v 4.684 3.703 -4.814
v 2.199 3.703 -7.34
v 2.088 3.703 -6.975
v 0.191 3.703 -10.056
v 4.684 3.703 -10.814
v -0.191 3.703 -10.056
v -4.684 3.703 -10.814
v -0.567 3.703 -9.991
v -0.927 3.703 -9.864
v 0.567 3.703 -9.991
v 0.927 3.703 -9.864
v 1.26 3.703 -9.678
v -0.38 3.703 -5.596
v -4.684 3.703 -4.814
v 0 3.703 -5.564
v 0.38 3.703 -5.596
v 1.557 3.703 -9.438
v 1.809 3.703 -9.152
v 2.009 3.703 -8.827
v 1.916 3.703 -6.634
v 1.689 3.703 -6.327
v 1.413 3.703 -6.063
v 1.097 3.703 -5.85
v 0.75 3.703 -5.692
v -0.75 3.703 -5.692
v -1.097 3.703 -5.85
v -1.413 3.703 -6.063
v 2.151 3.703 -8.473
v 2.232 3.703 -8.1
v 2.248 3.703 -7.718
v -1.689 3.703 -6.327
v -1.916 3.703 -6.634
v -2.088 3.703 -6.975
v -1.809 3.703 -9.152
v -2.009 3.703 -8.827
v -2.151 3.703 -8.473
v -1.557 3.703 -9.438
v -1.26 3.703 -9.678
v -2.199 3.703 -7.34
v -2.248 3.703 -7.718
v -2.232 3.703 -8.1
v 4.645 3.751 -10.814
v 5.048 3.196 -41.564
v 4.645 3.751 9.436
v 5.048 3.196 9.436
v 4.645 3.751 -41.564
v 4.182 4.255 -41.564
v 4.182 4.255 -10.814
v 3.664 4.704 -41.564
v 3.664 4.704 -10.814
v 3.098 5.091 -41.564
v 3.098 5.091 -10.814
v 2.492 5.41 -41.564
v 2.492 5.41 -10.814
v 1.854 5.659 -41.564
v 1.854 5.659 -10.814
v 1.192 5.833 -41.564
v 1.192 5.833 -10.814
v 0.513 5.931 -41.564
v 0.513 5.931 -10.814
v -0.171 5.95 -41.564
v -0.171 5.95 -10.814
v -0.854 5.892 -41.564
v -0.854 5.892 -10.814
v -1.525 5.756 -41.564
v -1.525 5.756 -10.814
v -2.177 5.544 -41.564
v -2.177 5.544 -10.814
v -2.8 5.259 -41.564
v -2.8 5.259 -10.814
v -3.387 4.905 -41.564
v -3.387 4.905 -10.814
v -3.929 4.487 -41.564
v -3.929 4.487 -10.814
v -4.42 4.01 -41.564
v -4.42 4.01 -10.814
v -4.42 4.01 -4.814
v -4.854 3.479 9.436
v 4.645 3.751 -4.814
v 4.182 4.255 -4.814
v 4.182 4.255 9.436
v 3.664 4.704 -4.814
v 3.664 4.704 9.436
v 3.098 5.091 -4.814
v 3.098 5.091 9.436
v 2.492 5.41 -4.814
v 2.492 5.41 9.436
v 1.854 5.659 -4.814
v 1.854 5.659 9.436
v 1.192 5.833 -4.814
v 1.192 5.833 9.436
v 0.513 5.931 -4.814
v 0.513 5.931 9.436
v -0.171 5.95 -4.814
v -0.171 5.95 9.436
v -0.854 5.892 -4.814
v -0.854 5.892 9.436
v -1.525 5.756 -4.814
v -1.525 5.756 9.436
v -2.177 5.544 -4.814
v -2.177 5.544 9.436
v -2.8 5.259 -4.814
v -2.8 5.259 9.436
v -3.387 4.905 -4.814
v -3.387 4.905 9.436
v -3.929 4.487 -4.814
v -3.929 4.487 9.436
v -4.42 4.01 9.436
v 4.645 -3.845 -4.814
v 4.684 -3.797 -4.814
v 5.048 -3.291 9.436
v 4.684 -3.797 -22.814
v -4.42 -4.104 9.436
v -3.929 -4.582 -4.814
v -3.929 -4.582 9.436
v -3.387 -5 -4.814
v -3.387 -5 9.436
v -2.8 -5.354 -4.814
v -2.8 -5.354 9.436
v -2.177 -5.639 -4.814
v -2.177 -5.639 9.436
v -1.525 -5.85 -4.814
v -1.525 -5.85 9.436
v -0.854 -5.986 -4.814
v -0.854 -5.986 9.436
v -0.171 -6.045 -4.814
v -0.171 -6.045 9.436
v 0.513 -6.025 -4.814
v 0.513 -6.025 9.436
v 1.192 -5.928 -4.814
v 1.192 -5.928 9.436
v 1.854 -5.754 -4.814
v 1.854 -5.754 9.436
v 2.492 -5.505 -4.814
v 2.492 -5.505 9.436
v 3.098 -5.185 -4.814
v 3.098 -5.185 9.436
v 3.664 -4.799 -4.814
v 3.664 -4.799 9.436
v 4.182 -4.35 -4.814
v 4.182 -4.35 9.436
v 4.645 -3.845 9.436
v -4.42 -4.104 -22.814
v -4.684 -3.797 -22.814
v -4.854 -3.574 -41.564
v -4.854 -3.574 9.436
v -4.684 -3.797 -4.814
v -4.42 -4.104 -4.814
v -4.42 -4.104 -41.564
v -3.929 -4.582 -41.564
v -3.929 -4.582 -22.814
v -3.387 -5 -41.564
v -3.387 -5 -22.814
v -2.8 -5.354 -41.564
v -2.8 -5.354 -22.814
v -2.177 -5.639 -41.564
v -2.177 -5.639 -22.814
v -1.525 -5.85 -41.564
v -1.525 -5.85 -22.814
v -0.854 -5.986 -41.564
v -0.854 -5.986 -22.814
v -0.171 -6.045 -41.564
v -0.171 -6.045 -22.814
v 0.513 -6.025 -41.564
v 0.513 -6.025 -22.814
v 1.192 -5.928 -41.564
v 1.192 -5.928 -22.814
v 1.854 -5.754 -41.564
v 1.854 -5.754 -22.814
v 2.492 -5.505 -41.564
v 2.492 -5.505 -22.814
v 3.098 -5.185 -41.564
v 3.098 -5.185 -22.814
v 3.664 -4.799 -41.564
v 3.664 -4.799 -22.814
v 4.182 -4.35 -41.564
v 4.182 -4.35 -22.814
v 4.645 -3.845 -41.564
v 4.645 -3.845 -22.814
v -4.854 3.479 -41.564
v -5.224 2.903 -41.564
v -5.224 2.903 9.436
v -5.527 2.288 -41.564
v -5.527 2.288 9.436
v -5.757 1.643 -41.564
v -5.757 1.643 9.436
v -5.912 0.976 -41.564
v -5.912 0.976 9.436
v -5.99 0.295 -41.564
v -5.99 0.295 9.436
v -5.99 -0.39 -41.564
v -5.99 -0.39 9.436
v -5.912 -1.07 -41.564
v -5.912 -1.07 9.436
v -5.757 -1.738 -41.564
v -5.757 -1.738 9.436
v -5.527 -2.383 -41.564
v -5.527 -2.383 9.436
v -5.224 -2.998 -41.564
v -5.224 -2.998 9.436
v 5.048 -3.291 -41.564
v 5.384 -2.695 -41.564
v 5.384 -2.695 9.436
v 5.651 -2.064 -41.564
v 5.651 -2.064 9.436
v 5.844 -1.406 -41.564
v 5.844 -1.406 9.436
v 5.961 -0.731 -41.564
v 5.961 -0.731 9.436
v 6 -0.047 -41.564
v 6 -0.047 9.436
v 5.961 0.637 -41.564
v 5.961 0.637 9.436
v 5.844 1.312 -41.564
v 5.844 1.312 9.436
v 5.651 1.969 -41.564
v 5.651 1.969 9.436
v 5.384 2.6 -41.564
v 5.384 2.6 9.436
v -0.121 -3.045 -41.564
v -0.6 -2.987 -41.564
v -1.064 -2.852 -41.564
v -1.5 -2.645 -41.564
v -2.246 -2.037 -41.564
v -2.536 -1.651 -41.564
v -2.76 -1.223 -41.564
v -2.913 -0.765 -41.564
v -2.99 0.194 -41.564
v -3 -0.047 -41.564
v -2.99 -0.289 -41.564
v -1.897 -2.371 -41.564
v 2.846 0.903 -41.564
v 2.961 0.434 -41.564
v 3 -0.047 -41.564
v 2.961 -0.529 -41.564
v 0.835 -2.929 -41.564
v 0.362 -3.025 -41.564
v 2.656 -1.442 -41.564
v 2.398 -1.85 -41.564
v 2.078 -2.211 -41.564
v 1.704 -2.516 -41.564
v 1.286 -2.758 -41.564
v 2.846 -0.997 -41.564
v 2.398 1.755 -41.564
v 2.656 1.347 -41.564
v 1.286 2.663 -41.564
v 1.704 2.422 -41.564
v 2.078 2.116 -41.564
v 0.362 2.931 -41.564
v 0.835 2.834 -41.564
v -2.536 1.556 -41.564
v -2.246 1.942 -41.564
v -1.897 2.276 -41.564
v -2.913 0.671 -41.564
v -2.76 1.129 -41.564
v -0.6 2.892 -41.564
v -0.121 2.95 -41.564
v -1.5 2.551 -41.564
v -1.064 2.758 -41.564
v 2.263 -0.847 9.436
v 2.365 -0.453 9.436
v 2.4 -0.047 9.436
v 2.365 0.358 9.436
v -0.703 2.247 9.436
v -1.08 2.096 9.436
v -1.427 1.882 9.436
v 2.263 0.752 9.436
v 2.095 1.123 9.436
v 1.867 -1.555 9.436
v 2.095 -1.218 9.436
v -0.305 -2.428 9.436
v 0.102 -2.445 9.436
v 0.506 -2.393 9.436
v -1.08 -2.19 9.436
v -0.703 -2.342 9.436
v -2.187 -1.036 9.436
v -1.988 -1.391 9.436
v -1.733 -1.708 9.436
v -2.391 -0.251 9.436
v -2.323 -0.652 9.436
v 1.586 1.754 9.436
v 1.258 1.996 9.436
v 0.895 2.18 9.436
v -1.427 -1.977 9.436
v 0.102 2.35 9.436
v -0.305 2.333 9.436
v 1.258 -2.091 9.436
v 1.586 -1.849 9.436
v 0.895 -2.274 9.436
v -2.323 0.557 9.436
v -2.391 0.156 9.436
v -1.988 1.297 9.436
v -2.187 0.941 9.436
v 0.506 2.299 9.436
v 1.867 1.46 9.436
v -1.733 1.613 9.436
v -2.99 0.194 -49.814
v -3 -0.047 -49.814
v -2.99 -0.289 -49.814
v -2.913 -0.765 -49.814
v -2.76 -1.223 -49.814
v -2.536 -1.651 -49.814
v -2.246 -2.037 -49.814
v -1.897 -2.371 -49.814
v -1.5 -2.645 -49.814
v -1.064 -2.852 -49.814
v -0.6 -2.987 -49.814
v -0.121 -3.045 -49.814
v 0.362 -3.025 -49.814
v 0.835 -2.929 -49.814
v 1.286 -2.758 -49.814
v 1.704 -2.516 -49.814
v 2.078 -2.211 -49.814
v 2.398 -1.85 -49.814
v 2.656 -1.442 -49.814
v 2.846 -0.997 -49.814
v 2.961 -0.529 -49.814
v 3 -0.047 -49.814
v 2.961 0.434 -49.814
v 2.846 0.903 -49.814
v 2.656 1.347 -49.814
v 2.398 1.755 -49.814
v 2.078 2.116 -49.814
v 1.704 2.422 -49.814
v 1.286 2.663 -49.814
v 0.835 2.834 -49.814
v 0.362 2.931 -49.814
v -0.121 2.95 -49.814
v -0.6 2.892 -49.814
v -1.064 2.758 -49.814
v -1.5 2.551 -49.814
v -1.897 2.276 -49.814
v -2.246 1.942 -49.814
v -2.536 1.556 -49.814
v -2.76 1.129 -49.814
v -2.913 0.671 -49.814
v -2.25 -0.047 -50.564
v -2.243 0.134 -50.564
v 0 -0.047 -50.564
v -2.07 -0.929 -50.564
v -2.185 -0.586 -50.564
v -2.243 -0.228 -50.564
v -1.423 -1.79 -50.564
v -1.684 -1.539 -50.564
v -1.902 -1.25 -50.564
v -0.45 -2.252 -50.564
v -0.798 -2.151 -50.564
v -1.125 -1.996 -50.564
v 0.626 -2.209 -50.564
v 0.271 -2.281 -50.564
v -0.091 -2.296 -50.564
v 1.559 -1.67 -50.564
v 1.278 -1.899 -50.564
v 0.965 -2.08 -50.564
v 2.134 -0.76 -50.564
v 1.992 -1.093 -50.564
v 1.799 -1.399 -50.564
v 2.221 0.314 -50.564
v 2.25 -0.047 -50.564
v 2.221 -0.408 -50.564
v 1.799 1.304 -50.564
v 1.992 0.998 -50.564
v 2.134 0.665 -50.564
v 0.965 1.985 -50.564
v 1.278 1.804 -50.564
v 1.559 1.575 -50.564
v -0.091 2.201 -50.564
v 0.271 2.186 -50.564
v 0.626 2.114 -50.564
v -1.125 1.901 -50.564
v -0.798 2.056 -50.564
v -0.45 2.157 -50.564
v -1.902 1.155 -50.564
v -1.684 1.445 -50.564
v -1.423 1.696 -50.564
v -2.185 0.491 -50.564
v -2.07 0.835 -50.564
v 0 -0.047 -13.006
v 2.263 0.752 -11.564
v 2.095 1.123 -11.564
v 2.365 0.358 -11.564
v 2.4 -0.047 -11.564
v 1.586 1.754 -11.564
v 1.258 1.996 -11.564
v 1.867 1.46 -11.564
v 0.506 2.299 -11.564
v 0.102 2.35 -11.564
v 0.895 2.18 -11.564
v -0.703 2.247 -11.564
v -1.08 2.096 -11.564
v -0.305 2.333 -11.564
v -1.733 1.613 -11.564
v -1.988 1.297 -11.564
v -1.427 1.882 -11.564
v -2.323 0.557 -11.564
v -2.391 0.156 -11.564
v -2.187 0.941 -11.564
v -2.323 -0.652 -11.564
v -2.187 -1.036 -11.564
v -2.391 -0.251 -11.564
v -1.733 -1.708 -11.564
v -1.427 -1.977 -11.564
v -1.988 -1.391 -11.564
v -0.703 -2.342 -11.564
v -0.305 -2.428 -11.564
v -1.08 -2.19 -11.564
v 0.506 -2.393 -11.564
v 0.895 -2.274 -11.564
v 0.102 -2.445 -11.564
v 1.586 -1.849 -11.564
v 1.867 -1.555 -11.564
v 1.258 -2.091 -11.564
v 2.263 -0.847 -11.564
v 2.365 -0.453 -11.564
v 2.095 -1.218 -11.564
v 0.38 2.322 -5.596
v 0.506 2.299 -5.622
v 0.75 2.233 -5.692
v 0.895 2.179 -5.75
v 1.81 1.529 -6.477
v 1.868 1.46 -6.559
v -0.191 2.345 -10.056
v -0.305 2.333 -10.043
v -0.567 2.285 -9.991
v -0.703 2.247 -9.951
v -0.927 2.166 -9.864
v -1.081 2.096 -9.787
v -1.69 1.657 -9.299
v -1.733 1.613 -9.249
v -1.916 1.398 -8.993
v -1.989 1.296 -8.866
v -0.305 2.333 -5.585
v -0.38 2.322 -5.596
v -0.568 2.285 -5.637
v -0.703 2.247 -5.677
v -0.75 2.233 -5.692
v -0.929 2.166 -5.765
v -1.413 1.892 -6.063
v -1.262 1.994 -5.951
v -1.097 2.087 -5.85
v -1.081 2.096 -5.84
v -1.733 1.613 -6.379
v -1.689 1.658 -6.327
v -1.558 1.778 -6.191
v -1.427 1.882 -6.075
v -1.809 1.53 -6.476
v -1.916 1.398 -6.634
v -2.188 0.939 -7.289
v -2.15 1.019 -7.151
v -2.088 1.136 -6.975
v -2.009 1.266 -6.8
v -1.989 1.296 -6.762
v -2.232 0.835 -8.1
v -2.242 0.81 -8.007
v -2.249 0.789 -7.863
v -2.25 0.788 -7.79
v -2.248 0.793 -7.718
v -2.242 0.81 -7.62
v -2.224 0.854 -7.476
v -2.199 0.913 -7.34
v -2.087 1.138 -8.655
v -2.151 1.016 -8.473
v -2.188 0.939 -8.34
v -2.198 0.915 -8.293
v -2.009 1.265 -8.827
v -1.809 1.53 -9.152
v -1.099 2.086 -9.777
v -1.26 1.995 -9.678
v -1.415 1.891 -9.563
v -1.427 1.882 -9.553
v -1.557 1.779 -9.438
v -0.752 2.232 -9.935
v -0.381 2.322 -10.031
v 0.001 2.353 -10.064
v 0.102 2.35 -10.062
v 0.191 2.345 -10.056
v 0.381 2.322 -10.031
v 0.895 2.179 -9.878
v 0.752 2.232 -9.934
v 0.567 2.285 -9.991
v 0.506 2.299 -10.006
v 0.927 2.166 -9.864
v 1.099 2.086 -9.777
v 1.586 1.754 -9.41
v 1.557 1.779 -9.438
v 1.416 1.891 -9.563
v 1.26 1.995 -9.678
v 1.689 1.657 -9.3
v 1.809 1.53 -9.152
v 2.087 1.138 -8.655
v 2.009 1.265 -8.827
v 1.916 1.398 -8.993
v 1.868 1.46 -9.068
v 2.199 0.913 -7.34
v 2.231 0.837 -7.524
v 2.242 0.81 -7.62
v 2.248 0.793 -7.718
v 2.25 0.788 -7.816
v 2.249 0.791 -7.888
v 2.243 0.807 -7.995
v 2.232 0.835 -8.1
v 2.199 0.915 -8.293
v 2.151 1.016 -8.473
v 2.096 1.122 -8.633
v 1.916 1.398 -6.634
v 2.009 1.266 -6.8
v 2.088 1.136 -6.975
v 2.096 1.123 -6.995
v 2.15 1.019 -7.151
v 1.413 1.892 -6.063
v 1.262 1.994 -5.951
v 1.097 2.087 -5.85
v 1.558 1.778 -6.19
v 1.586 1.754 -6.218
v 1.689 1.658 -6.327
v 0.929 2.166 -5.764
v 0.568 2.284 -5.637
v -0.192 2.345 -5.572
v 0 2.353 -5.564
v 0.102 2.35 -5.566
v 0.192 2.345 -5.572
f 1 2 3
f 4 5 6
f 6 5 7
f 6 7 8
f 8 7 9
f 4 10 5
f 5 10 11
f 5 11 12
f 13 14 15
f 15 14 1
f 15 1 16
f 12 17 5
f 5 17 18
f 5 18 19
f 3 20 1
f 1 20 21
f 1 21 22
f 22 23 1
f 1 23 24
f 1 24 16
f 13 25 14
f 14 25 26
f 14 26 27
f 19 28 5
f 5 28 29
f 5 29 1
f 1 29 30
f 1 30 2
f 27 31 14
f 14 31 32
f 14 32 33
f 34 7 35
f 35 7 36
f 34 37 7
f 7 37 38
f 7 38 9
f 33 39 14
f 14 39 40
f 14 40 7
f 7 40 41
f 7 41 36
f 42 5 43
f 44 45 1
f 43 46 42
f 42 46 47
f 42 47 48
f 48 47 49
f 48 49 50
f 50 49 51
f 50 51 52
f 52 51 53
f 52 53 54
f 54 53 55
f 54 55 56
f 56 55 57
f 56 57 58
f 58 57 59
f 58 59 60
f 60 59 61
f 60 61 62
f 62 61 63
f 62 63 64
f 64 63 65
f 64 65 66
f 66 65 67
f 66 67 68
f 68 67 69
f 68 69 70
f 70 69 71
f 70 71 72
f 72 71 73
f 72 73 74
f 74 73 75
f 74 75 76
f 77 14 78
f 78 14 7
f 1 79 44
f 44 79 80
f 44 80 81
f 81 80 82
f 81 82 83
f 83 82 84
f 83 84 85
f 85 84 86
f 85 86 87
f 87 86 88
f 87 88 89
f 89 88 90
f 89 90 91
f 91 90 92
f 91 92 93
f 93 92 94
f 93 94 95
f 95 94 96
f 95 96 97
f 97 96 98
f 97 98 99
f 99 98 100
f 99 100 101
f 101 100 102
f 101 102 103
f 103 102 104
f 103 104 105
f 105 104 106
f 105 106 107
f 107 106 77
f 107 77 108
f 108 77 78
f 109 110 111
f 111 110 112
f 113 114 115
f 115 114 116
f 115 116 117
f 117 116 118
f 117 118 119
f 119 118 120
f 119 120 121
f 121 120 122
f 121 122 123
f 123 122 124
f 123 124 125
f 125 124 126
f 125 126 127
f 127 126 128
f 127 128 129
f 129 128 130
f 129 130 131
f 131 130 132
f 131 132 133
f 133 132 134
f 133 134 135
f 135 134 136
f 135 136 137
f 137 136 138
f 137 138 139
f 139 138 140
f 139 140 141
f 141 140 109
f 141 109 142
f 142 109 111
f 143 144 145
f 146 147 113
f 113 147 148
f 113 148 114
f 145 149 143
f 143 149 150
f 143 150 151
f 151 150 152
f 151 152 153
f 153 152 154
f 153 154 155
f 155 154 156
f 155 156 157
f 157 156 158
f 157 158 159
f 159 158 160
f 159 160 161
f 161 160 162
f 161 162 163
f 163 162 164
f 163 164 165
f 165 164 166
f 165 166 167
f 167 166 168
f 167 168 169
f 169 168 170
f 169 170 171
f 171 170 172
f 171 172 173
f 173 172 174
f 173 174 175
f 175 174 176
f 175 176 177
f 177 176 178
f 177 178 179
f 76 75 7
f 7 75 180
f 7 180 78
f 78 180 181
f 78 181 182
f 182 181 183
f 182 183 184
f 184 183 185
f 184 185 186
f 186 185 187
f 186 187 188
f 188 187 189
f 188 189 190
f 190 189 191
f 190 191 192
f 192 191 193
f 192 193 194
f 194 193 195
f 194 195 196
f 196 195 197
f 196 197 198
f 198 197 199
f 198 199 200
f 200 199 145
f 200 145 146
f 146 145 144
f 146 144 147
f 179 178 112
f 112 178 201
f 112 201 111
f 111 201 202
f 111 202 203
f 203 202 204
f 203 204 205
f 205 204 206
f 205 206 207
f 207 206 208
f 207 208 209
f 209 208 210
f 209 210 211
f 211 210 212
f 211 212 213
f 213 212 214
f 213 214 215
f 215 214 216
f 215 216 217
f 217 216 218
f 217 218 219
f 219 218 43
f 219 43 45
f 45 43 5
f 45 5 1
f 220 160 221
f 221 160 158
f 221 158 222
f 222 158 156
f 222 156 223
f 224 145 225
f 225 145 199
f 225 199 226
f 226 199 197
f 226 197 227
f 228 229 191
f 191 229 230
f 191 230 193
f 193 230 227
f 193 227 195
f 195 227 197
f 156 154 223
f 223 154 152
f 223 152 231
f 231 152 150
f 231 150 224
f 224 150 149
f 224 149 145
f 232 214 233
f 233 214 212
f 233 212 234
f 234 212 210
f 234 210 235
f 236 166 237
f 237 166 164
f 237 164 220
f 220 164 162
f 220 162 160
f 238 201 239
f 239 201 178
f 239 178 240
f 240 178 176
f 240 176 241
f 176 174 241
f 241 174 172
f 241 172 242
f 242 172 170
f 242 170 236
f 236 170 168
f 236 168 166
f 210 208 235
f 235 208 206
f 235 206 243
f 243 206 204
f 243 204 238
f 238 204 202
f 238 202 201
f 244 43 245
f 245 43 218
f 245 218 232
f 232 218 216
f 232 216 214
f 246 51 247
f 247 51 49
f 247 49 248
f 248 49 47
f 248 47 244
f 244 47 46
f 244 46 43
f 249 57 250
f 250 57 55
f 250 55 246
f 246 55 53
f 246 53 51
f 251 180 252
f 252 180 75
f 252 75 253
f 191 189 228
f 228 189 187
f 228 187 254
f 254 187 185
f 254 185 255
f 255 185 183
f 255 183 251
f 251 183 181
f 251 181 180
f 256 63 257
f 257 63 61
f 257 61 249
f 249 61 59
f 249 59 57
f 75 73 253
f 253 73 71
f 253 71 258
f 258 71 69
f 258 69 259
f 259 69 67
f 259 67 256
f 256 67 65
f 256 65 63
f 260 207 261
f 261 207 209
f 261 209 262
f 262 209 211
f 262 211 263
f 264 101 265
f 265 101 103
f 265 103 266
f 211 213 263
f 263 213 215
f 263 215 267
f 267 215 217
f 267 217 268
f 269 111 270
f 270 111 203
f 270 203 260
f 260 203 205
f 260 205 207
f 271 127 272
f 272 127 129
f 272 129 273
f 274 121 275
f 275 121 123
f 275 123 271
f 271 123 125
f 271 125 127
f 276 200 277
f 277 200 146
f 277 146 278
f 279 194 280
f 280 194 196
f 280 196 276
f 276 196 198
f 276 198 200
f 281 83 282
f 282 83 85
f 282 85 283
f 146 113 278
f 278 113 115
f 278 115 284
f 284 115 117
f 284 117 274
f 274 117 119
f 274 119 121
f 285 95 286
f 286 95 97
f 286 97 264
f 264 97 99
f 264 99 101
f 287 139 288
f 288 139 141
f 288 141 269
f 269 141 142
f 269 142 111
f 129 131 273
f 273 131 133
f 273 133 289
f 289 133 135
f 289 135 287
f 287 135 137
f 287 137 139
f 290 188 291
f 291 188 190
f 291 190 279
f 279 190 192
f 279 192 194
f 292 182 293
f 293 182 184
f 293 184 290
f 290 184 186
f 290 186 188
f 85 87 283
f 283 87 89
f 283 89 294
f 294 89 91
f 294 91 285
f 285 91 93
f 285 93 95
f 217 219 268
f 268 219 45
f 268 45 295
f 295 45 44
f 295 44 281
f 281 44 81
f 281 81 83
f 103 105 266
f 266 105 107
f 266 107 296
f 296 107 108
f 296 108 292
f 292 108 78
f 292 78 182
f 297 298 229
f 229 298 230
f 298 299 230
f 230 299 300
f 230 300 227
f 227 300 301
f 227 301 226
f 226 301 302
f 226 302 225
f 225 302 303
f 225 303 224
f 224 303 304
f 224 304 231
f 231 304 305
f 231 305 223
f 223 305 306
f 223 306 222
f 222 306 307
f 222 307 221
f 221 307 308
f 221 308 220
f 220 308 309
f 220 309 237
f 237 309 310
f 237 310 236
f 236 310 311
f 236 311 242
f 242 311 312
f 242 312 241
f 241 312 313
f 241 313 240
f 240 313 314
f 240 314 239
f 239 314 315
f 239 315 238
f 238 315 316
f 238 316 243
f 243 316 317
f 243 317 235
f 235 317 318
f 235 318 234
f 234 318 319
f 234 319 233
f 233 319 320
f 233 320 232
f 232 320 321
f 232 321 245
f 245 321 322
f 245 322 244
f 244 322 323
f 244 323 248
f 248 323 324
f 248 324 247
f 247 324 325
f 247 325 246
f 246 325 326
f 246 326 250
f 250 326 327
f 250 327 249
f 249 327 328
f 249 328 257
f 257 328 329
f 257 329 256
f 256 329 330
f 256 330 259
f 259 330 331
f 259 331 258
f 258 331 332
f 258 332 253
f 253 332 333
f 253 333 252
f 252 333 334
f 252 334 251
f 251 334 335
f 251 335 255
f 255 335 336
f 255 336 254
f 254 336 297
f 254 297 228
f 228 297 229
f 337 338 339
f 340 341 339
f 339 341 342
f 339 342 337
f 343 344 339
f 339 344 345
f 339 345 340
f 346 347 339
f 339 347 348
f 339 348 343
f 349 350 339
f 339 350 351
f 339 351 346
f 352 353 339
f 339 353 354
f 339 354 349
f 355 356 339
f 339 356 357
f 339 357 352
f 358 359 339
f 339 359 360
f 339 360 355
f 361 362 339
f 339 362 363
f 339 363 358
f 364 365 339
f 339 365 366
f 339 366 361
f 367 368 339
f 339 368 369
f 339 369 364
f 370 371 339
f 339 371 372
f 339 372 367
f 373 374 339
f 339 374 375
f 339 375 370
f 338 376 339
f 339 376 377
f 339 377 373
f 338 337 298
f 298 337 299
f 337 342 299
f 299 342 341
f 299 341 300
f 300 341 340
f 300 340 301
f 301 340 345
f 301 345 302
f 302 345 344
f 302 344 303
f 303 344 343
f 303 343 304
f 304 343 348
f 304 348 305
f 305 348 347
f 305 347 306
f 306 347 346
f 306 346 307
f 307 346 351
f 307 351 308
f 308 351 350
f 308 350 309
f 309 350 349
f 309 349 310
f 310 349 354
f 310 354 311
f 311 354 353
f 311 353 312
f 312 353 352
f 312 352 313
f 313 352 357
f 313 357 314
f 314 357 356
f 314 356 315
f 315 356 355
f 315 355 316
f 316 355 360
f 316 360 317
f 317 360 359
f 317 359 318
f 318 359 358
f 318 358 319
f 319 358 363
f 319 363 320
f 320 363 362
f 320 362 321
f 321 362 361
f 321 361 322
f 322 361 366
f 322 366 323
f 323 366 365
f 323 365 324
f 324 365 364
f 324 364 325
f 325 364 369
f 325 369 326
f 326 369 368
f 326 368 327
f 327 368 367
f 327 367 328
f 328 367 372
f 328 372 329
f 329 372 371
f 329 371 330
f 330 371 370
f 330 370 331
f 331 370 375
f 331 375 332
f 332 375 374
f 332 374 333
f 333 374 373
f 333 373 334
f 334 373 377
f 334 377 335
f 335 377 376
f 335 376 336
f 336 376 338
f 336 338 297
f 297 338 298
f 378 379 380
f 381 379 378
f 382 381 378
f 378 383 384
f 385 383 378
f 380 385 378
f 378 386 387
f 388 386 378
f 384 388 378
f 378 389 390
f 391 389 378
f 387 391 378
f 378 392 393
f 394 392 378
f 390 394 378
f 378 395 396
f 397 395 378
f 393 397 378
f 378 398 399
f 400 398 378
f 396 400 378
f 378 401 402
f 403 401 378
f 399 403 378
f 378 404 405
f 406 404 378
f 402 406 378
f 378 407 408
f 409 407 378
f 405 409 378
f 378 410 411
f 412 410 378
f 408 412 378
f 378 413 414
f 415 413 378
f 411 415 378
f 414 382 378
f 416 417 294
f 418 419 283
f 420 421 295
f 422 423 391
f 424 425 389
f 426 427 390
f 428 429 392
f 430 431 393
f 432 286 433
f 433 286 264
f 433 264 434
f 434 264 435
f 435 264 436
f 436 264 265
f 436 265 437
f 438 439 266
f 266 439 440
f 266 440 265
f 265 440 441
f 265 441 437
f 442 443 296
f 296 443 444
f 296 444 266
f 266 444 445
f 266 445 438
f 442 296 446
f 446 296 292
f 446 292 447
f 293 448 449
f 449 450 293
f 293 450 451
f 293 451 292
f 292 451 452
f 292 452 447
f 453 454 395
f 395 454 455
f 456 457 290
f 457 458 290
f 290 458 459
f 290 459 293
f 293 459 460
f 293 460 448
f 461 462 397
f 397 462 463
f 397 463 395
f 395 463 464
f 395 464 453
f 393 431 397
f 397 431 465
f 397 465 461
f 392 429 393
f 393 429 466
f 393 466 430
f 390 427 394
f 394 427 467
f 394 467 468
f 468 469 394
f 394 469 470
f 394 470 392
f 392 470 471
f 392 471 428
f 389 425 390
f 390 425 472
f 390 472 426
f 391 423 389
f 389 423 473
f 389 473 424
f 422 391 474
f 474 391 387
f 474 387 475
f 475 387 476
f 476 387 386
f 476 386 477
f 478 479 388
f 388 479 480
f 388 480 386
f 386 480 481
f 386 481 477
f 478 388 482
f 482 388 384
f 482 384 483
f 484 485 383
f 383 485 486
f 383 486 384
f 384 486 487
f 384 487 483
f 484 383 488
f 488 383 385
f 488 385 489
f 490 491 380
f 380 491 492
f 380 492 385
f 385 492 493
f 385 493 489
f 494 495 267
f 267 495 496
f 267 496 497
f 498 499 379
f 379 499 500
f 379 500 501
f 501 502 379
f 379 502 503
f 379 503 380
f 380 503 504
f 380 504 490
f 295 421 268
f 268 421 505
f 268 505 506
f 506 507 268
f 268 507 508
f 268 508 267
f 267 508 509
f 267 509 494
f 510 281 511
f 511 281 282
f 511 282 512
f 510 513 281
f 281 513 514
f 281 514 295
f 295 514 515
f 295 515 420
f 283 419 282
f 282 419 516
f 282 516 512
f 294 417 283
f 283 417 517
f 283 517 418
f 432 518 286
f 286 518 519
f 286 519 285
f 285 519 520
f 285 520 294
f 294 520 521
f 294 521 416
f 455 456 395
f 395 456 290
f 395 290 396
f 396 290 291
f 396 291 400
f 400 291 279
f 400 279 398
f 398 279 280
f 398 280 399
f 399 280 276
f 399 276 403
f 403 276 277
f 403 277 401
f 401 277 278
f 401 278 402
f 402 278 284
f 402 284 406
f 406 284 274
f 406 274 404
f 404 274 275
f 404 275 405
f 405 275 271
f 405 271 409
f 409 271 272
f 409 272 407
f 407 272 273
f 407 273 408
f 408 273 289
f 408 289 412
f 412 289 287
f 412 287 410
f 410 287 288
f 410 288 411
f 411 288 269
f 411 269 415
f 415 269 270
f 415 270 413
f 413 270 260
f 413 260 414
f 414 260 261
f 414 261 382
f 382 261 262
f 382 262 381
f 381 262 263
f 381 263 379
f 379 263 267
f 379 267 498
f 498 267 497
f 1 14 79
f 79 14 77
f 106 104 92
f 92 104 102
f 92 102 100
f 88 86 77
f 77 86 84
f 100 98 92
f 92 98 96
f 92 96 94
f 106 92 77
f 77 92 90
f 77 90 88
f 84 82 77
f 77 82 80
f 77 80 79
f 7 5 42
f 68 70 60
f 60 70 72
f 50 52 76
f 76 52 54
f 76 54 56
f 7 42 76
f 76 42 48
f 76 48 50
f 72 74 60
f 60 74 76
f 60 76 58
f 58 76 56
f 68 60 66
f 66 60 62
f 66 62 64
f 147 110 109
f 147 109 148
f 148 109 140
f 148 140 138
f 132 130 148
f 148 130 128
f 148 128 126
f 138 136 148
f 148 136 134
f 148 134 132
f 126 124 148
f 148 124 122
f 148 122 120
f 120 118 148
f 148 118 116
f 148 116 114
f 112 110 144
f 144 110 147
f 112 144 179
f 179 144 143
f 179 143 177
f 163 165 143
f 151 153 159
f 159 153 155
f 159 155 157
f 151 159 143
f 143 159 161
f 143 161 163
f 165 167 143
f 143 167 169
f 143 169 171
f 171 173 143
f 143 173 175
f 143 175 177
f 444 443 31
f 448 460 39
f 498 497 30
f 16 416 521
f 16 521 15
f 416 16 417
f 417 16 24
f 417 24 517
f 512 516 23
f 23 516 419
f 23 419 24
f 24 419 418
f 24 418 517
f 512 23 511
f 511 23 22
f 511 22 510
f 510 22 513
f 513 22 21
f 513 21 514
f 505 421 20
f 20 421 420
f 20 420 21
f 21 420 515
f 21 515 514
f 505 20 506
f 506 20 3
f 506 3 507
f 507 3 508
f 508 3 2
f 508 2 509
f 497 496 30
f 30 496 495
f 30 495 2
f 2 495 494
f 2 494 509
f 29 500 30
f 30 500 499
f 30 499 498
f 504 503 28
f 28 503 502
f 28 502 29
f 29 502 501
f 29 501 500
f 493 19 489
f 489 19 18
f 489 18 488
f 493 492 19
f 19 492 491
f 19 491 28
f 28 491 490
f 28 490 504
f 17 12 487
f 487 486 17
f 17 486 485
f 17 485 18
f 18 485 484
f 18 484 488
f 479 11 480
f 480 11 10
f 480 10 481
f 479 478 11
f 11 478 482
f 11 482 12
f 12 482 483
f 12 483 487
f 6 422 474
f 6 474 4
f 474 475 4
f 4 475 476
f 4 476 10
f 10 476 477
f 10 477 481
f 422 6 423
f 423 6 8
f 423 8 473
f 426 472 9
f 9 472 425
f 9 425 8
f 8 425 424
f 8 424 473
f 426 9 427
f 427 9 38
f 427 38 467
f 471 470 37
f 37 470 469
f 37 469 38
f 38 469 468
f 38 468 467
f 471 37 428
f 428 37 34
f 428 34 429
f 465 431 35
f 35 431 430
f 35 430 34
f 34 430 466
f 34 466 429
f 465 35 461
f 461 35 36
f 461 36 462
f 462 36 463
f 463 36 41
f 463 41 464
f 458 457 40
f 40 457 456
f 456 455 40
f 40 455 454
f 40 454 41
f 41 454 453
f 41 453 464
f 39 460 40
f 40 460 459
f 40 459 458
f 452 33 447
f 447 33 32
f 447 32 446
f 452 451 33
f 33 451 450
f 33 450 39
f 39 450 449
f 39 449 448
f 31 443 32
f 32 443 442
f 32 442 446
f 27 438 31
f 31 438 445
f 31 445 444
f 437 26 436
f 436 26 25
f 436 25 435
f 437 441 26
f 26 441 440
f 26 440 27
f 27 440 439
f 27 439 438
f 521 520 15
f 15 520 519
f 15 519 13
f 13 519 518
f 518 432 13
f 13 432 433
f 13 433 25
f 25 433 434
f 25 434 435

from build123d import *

# Parameters (mm, degrees)
SKETCH1_R                      = 4
BOSS_EXTRUDE2_DEPTH            = 34
SKETCH2_R                      = 2
BOSS_EXTRUDE3_DEPTH            = 6
CHAMFER1_SIZE                  = 0.5
F_3_2_3_2_DIAMETER_HOLE1_D     = 3.2
F_3_2_3_2_DIAMETER_HOLE1_DEPTH = 14
F_3_2_3_2_DIAMETER_HOLE1_TIP   = 0.96137699
CUT_EXTRUDE1_DEPTH             = 41.398019753
CUT_EXTRUDE1_DEPTH_BACK        = 41.398019753
SKETCH5_W                      = 12
SKETCH5_H                      = 1.5
SKETCH5_W_2                    = 4
F_3_0_3_DIAMETER_HOLE1_REACH   = 42.722
F_3_0_3_DIAMETER_HOLE1_BORE_R  = 1.5
SCALE1_SCALE                   = 1.5


with BuildPart() as part:
    # Sketch1 → Boss-Extrude2 (new body)
    with BuildSketch(Plane.XY):
        Circle(SKETCH1_R)
    extrude(amount=-BOSS_EXTRUDE2_DEPTH)

    # Sketch2 → Boss-Extrude3 (add)
    with BuildSketch(Plane(origin=(0, 0, -34), x_dir=(-1, 0, 0), z_dir=(0, 0, -1))):
        Circle(SKETCH2_R)
    extrude(amount=BOSS_EXTRUDE3_DEPTH)

    # Chamfer1
    chamfer1_edges = [part.edges().sort_by_distance(p)[0] for p in [
        (2, 0, -40),
    ]]
    chamfer(chamfer1_edges, length=CHAMFER1_SIZE)

    # Ø3.2 (3.2) Diameter Hole1
    with Locations(Plane.XY):
        with Locations((0, 0)):
            Hole(F_3_2_3_2_DIAMETER_HOLE1_D / 2, depth=F_3_2_3_2_DIAMETER_HOLE1_DEPTH)
            with Locations((0, 0, -(F_3_2_3_2_DIAMETER_HOLE1_DEPTH + F_3_2_3_2_DIAMETER_HOLE1_TIP / 2))):  # 118° drill point
                Cone(0, F_3_2_3_2_DIAMETER_HOLE1_D / 2, F_3_2_3_2_DIAMETER_HOLE1_TIP, mode=Mode.SUBTRACT)

    # Sketch5 → Cut-Extrude1 (cut, two sides: drawn at the far end of the back side and taken through both)
    with BuildSketch(Plane(origin=(0, 0, 0), x_dir=(0, 0, -1), z_dir=(1, 0, 0)).offset(-CUT_EXTRUDE1_DEPTH_BACK)):
        with Locations((15.5, -3.25)):
            Rectangle(SKETCH5_W, SKETCH5_H)
        with Locations((11.5, 3.25)):
            Rectangle(SKETCH5_W_2, SKETCH5_H)
    extrude(amount=CUT_EXTRUDE1_DEPTH + CUT_EXTRUDE1_DEPTH_BACK, mode=Mode.SUBTRACT)

    # Ø3.0 (3) Diameter Hole1 bore → Ø3.0 (3) Diameter Hole1 (cut, up to next)
    with BuildSketch(Plane(origin=(0, 2.5, 0), x_dir=(1, 0, 0), z_dir=(0, 1, 0)), mode=Mode.PRIVATE) as f_3_0_3_diameter_hole1_sk1:
        with Locations((0, 11.5)):
            Circle(F_3_0_3_DIAMETER_HOLE1_BORE_R)
    f_3_0_3_diameter_hole1_tool1 = extrude(f_3_0_3_diameter_hole1_sk1.sketch, amount=-F_3_0_3_DIAMETER_HOLE1_REACH, mode=Mode.PRIVATE) & part.part
    add(f_3_0_3_diameter_hole1_tool1.solids().sort_by_distance((0, 2.5, -11.5))[0], mode=Mode.SUBTRACT)


with BuildPart() as part_1:
    # Scale1: scaled about (4.68e-07, 0.094714404, -18.871986745)
    add(part.part.scale(SCALE1_SCALE).moved(Location((-2.34e-07, -0.047357202, 9.435993373))))


solid = part_1.part
